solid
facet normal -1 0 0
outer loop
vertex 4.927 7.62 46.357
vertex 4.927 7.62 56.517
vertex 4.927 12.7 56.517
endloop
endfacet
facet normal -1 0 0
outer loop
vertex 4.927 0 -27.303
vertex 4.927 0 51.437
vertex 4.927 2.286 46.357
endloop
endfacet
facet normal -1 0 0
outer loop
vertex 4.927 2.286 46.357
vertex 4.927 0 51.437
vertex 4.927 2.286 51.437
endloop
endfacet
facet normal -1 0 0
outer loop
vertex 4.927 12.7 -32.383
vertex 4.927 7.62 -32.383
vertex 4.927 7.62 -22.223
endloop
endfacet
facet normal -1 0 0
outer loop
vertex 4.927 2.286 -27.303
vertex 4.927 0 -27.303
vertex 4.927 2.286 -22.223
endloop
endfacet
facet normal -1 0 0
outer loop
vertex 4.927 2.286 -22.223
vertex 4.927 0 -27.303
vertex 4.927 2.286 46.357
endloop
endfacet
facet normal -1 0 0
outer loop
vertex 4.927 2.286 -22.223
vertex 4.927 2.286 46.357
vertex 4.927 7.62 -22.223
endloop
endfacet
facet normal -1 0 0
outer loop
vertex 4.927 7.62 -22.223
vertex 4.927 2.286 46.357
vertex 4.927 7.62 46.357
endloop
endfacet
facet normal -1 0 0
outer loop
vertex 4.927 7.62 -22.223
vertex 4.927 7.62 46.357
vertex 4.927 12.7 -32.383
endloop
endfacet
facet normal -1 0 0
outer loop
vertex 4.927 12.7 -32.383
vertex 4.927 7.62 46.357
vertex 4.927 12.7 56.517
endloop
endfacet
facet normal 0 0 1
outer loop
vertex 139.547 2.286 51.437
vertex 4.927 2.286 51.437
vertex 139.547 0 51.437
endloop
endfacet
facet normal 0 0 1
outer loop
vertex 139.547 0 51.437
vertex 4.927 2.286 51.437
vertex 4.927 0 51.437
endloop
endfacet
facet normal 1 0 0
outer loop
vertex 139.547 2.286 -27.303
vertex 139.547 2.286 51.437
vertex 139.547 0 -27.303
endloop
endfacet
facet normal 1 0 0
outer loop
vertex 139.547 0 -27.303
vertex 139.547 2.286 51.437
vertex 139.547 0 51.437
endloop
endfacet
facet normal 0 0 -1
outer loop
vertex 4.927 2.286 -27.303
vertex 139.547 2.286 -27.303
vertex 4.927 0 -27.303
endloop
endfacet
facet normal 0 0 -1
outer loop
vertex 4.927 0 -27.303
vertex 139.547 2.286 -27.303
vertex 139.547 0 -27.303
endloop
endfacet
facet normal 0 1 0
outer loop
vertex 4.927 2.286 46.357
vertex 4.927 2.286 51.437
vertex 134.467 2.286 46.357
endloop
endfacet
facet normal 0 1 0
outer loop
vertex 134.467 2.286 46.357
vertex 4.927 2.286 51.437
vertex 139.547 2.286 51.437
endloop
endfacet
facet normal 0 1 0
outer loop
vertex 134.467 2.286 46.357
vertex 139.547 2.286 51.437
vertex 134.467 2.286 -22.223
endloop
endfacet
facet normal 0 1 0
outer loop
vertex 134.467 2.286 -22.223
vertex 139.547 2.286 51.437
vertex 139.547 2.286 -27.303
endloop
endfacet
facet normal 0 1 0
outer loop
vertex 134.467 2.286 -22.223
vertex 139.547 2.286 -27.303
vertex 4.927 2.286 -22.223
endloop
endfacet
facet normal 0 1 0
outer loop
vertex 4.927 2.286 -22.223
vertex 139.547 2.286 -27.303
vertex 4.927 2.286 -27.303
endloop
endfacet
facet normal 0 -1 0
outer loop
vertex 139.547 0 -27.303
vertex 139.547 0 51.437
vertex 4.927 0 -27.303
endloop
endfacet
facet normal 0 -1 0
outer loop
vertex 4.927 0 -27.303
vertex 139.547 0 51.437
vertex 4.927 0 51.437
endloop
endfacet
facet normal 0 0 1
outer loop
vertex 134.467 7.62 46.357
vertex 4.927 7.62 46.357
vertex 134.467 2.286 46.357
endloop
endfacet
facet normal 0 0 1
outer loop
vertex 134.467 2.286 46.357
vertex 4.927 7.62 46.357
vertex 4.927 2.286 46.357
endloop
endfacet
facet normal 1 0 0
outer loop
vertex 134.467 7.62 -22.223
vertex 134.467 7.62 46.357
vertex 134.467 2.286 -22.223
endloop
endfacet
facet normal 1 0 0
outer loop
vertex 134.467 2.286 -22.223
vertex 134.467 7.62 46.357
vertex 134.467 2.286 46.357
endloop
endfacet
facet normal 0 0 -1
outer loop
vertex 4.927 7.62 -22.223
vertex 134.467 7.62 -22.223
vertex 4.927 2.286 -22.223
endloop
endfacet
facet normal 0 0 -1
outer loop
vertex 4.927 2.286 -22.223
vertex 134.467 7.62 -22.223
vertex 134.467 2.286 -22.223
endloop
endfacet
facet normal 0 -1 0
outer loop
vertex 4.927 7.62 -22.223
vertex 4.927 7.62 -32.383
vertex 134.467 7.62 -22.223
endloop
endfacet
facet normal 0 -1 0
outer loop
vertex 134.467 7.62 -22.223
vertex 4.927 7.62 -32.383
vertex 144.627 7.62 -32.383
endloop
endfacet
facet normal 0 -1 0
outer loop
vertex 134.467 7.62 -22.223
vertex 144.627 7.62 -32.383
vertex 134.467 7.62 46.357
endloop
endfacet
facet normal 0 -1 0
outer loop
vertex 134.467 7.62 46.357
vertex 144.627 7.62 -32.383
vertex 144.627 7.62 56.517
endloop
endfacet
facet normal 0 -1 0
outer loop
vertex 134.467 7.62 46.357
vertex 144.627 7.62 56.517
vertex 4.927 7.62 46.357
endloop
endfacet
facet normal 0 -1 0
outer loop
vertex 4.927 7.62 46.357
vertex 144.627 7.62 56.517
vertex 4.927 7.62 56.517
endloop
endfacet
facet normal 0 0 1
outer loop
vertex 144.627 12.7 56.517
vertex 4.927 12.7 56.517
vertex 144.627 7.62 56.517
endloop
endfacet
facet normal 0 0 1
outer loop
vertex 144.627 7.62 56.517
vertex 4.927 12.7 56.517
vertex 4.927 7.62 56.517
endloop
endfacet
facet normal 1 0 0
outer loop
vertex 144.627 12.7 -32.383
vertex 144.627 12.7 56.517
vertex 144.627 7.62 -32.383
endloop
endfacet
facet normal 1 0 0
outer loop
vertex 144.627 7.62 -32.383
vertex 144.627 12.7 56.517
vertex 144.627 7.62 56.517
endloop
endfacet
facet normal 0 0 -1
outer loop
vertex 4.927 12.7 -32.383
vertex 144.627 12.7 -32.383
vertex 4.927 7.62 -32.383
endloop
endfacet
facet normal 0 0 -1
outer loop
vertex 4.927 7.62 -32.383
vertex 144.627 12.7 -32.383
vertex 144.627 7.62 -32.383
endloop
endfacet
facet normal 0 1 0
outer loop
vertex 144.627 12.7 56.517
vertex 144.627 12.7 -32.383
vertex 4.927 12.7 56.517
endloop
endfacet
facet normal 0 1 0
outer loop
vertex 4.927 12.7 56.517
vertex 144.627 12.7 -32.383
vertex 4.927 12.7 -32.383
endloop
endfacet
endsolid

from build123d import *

# Parameters (mm, degrees)
SKETCH1_W           = 134.62
SKETCH1_H           = 78.74
BOSS_EXTRUDE1_DEPTH = 2.286
SKETCH2_W           = 129.54
SKETCH2_H           = 68.58
BOSS_EXTRUDE2_DEPTH = 5.334
SKETCH3_W           = 139.7
SKETCH3_H           = 88.9
BOSS_EXTRUDE3_DEPTH = 5.08


with BuildPart() as part:
    # Sketch1 → Boss-Extrude1 (new body)
    with BuildSketch(Plane(origin=(0, 0, 0), x_dir=(1, 0, 0), z_dir=(0, 1, 0))):
        with Locations((72.236796638, -12.067156206)):
            Rectangle(SKETCH1_W, SKETCH1_H)
    extrude(amount=BOSS_EXTRUDE1_DEPTH)

    # Sketch2 → Boss-Extrude2 (add)
    with BuildSketch(Plane(origin=(0, 2.286, 0), x_dir=(1, 0, 0), z_dir=(0, 1, 0))):
        with Locations((69.696796638, -12.067156206)):
            Rectangle(SKETCH2_W, SKETCH2_H)
    extrude(amount=BOSS_EXTRUDE2_DEPTH)

    # Sketch3 → Boss-Extrude3 (add)
    with BuildSketch(Plane(origin=(0, 7.62, 0), x_dir=(1, 0, 0), z_dir=(0, 1, 0))):
        with Locations((74.776796638, -12.067156206)):
            Rectangle(SKETCH3_W, SKETCH3_H)
    extrude(amount=BOSS_EXTRUDE3_DEPTH)


solid = part.part
